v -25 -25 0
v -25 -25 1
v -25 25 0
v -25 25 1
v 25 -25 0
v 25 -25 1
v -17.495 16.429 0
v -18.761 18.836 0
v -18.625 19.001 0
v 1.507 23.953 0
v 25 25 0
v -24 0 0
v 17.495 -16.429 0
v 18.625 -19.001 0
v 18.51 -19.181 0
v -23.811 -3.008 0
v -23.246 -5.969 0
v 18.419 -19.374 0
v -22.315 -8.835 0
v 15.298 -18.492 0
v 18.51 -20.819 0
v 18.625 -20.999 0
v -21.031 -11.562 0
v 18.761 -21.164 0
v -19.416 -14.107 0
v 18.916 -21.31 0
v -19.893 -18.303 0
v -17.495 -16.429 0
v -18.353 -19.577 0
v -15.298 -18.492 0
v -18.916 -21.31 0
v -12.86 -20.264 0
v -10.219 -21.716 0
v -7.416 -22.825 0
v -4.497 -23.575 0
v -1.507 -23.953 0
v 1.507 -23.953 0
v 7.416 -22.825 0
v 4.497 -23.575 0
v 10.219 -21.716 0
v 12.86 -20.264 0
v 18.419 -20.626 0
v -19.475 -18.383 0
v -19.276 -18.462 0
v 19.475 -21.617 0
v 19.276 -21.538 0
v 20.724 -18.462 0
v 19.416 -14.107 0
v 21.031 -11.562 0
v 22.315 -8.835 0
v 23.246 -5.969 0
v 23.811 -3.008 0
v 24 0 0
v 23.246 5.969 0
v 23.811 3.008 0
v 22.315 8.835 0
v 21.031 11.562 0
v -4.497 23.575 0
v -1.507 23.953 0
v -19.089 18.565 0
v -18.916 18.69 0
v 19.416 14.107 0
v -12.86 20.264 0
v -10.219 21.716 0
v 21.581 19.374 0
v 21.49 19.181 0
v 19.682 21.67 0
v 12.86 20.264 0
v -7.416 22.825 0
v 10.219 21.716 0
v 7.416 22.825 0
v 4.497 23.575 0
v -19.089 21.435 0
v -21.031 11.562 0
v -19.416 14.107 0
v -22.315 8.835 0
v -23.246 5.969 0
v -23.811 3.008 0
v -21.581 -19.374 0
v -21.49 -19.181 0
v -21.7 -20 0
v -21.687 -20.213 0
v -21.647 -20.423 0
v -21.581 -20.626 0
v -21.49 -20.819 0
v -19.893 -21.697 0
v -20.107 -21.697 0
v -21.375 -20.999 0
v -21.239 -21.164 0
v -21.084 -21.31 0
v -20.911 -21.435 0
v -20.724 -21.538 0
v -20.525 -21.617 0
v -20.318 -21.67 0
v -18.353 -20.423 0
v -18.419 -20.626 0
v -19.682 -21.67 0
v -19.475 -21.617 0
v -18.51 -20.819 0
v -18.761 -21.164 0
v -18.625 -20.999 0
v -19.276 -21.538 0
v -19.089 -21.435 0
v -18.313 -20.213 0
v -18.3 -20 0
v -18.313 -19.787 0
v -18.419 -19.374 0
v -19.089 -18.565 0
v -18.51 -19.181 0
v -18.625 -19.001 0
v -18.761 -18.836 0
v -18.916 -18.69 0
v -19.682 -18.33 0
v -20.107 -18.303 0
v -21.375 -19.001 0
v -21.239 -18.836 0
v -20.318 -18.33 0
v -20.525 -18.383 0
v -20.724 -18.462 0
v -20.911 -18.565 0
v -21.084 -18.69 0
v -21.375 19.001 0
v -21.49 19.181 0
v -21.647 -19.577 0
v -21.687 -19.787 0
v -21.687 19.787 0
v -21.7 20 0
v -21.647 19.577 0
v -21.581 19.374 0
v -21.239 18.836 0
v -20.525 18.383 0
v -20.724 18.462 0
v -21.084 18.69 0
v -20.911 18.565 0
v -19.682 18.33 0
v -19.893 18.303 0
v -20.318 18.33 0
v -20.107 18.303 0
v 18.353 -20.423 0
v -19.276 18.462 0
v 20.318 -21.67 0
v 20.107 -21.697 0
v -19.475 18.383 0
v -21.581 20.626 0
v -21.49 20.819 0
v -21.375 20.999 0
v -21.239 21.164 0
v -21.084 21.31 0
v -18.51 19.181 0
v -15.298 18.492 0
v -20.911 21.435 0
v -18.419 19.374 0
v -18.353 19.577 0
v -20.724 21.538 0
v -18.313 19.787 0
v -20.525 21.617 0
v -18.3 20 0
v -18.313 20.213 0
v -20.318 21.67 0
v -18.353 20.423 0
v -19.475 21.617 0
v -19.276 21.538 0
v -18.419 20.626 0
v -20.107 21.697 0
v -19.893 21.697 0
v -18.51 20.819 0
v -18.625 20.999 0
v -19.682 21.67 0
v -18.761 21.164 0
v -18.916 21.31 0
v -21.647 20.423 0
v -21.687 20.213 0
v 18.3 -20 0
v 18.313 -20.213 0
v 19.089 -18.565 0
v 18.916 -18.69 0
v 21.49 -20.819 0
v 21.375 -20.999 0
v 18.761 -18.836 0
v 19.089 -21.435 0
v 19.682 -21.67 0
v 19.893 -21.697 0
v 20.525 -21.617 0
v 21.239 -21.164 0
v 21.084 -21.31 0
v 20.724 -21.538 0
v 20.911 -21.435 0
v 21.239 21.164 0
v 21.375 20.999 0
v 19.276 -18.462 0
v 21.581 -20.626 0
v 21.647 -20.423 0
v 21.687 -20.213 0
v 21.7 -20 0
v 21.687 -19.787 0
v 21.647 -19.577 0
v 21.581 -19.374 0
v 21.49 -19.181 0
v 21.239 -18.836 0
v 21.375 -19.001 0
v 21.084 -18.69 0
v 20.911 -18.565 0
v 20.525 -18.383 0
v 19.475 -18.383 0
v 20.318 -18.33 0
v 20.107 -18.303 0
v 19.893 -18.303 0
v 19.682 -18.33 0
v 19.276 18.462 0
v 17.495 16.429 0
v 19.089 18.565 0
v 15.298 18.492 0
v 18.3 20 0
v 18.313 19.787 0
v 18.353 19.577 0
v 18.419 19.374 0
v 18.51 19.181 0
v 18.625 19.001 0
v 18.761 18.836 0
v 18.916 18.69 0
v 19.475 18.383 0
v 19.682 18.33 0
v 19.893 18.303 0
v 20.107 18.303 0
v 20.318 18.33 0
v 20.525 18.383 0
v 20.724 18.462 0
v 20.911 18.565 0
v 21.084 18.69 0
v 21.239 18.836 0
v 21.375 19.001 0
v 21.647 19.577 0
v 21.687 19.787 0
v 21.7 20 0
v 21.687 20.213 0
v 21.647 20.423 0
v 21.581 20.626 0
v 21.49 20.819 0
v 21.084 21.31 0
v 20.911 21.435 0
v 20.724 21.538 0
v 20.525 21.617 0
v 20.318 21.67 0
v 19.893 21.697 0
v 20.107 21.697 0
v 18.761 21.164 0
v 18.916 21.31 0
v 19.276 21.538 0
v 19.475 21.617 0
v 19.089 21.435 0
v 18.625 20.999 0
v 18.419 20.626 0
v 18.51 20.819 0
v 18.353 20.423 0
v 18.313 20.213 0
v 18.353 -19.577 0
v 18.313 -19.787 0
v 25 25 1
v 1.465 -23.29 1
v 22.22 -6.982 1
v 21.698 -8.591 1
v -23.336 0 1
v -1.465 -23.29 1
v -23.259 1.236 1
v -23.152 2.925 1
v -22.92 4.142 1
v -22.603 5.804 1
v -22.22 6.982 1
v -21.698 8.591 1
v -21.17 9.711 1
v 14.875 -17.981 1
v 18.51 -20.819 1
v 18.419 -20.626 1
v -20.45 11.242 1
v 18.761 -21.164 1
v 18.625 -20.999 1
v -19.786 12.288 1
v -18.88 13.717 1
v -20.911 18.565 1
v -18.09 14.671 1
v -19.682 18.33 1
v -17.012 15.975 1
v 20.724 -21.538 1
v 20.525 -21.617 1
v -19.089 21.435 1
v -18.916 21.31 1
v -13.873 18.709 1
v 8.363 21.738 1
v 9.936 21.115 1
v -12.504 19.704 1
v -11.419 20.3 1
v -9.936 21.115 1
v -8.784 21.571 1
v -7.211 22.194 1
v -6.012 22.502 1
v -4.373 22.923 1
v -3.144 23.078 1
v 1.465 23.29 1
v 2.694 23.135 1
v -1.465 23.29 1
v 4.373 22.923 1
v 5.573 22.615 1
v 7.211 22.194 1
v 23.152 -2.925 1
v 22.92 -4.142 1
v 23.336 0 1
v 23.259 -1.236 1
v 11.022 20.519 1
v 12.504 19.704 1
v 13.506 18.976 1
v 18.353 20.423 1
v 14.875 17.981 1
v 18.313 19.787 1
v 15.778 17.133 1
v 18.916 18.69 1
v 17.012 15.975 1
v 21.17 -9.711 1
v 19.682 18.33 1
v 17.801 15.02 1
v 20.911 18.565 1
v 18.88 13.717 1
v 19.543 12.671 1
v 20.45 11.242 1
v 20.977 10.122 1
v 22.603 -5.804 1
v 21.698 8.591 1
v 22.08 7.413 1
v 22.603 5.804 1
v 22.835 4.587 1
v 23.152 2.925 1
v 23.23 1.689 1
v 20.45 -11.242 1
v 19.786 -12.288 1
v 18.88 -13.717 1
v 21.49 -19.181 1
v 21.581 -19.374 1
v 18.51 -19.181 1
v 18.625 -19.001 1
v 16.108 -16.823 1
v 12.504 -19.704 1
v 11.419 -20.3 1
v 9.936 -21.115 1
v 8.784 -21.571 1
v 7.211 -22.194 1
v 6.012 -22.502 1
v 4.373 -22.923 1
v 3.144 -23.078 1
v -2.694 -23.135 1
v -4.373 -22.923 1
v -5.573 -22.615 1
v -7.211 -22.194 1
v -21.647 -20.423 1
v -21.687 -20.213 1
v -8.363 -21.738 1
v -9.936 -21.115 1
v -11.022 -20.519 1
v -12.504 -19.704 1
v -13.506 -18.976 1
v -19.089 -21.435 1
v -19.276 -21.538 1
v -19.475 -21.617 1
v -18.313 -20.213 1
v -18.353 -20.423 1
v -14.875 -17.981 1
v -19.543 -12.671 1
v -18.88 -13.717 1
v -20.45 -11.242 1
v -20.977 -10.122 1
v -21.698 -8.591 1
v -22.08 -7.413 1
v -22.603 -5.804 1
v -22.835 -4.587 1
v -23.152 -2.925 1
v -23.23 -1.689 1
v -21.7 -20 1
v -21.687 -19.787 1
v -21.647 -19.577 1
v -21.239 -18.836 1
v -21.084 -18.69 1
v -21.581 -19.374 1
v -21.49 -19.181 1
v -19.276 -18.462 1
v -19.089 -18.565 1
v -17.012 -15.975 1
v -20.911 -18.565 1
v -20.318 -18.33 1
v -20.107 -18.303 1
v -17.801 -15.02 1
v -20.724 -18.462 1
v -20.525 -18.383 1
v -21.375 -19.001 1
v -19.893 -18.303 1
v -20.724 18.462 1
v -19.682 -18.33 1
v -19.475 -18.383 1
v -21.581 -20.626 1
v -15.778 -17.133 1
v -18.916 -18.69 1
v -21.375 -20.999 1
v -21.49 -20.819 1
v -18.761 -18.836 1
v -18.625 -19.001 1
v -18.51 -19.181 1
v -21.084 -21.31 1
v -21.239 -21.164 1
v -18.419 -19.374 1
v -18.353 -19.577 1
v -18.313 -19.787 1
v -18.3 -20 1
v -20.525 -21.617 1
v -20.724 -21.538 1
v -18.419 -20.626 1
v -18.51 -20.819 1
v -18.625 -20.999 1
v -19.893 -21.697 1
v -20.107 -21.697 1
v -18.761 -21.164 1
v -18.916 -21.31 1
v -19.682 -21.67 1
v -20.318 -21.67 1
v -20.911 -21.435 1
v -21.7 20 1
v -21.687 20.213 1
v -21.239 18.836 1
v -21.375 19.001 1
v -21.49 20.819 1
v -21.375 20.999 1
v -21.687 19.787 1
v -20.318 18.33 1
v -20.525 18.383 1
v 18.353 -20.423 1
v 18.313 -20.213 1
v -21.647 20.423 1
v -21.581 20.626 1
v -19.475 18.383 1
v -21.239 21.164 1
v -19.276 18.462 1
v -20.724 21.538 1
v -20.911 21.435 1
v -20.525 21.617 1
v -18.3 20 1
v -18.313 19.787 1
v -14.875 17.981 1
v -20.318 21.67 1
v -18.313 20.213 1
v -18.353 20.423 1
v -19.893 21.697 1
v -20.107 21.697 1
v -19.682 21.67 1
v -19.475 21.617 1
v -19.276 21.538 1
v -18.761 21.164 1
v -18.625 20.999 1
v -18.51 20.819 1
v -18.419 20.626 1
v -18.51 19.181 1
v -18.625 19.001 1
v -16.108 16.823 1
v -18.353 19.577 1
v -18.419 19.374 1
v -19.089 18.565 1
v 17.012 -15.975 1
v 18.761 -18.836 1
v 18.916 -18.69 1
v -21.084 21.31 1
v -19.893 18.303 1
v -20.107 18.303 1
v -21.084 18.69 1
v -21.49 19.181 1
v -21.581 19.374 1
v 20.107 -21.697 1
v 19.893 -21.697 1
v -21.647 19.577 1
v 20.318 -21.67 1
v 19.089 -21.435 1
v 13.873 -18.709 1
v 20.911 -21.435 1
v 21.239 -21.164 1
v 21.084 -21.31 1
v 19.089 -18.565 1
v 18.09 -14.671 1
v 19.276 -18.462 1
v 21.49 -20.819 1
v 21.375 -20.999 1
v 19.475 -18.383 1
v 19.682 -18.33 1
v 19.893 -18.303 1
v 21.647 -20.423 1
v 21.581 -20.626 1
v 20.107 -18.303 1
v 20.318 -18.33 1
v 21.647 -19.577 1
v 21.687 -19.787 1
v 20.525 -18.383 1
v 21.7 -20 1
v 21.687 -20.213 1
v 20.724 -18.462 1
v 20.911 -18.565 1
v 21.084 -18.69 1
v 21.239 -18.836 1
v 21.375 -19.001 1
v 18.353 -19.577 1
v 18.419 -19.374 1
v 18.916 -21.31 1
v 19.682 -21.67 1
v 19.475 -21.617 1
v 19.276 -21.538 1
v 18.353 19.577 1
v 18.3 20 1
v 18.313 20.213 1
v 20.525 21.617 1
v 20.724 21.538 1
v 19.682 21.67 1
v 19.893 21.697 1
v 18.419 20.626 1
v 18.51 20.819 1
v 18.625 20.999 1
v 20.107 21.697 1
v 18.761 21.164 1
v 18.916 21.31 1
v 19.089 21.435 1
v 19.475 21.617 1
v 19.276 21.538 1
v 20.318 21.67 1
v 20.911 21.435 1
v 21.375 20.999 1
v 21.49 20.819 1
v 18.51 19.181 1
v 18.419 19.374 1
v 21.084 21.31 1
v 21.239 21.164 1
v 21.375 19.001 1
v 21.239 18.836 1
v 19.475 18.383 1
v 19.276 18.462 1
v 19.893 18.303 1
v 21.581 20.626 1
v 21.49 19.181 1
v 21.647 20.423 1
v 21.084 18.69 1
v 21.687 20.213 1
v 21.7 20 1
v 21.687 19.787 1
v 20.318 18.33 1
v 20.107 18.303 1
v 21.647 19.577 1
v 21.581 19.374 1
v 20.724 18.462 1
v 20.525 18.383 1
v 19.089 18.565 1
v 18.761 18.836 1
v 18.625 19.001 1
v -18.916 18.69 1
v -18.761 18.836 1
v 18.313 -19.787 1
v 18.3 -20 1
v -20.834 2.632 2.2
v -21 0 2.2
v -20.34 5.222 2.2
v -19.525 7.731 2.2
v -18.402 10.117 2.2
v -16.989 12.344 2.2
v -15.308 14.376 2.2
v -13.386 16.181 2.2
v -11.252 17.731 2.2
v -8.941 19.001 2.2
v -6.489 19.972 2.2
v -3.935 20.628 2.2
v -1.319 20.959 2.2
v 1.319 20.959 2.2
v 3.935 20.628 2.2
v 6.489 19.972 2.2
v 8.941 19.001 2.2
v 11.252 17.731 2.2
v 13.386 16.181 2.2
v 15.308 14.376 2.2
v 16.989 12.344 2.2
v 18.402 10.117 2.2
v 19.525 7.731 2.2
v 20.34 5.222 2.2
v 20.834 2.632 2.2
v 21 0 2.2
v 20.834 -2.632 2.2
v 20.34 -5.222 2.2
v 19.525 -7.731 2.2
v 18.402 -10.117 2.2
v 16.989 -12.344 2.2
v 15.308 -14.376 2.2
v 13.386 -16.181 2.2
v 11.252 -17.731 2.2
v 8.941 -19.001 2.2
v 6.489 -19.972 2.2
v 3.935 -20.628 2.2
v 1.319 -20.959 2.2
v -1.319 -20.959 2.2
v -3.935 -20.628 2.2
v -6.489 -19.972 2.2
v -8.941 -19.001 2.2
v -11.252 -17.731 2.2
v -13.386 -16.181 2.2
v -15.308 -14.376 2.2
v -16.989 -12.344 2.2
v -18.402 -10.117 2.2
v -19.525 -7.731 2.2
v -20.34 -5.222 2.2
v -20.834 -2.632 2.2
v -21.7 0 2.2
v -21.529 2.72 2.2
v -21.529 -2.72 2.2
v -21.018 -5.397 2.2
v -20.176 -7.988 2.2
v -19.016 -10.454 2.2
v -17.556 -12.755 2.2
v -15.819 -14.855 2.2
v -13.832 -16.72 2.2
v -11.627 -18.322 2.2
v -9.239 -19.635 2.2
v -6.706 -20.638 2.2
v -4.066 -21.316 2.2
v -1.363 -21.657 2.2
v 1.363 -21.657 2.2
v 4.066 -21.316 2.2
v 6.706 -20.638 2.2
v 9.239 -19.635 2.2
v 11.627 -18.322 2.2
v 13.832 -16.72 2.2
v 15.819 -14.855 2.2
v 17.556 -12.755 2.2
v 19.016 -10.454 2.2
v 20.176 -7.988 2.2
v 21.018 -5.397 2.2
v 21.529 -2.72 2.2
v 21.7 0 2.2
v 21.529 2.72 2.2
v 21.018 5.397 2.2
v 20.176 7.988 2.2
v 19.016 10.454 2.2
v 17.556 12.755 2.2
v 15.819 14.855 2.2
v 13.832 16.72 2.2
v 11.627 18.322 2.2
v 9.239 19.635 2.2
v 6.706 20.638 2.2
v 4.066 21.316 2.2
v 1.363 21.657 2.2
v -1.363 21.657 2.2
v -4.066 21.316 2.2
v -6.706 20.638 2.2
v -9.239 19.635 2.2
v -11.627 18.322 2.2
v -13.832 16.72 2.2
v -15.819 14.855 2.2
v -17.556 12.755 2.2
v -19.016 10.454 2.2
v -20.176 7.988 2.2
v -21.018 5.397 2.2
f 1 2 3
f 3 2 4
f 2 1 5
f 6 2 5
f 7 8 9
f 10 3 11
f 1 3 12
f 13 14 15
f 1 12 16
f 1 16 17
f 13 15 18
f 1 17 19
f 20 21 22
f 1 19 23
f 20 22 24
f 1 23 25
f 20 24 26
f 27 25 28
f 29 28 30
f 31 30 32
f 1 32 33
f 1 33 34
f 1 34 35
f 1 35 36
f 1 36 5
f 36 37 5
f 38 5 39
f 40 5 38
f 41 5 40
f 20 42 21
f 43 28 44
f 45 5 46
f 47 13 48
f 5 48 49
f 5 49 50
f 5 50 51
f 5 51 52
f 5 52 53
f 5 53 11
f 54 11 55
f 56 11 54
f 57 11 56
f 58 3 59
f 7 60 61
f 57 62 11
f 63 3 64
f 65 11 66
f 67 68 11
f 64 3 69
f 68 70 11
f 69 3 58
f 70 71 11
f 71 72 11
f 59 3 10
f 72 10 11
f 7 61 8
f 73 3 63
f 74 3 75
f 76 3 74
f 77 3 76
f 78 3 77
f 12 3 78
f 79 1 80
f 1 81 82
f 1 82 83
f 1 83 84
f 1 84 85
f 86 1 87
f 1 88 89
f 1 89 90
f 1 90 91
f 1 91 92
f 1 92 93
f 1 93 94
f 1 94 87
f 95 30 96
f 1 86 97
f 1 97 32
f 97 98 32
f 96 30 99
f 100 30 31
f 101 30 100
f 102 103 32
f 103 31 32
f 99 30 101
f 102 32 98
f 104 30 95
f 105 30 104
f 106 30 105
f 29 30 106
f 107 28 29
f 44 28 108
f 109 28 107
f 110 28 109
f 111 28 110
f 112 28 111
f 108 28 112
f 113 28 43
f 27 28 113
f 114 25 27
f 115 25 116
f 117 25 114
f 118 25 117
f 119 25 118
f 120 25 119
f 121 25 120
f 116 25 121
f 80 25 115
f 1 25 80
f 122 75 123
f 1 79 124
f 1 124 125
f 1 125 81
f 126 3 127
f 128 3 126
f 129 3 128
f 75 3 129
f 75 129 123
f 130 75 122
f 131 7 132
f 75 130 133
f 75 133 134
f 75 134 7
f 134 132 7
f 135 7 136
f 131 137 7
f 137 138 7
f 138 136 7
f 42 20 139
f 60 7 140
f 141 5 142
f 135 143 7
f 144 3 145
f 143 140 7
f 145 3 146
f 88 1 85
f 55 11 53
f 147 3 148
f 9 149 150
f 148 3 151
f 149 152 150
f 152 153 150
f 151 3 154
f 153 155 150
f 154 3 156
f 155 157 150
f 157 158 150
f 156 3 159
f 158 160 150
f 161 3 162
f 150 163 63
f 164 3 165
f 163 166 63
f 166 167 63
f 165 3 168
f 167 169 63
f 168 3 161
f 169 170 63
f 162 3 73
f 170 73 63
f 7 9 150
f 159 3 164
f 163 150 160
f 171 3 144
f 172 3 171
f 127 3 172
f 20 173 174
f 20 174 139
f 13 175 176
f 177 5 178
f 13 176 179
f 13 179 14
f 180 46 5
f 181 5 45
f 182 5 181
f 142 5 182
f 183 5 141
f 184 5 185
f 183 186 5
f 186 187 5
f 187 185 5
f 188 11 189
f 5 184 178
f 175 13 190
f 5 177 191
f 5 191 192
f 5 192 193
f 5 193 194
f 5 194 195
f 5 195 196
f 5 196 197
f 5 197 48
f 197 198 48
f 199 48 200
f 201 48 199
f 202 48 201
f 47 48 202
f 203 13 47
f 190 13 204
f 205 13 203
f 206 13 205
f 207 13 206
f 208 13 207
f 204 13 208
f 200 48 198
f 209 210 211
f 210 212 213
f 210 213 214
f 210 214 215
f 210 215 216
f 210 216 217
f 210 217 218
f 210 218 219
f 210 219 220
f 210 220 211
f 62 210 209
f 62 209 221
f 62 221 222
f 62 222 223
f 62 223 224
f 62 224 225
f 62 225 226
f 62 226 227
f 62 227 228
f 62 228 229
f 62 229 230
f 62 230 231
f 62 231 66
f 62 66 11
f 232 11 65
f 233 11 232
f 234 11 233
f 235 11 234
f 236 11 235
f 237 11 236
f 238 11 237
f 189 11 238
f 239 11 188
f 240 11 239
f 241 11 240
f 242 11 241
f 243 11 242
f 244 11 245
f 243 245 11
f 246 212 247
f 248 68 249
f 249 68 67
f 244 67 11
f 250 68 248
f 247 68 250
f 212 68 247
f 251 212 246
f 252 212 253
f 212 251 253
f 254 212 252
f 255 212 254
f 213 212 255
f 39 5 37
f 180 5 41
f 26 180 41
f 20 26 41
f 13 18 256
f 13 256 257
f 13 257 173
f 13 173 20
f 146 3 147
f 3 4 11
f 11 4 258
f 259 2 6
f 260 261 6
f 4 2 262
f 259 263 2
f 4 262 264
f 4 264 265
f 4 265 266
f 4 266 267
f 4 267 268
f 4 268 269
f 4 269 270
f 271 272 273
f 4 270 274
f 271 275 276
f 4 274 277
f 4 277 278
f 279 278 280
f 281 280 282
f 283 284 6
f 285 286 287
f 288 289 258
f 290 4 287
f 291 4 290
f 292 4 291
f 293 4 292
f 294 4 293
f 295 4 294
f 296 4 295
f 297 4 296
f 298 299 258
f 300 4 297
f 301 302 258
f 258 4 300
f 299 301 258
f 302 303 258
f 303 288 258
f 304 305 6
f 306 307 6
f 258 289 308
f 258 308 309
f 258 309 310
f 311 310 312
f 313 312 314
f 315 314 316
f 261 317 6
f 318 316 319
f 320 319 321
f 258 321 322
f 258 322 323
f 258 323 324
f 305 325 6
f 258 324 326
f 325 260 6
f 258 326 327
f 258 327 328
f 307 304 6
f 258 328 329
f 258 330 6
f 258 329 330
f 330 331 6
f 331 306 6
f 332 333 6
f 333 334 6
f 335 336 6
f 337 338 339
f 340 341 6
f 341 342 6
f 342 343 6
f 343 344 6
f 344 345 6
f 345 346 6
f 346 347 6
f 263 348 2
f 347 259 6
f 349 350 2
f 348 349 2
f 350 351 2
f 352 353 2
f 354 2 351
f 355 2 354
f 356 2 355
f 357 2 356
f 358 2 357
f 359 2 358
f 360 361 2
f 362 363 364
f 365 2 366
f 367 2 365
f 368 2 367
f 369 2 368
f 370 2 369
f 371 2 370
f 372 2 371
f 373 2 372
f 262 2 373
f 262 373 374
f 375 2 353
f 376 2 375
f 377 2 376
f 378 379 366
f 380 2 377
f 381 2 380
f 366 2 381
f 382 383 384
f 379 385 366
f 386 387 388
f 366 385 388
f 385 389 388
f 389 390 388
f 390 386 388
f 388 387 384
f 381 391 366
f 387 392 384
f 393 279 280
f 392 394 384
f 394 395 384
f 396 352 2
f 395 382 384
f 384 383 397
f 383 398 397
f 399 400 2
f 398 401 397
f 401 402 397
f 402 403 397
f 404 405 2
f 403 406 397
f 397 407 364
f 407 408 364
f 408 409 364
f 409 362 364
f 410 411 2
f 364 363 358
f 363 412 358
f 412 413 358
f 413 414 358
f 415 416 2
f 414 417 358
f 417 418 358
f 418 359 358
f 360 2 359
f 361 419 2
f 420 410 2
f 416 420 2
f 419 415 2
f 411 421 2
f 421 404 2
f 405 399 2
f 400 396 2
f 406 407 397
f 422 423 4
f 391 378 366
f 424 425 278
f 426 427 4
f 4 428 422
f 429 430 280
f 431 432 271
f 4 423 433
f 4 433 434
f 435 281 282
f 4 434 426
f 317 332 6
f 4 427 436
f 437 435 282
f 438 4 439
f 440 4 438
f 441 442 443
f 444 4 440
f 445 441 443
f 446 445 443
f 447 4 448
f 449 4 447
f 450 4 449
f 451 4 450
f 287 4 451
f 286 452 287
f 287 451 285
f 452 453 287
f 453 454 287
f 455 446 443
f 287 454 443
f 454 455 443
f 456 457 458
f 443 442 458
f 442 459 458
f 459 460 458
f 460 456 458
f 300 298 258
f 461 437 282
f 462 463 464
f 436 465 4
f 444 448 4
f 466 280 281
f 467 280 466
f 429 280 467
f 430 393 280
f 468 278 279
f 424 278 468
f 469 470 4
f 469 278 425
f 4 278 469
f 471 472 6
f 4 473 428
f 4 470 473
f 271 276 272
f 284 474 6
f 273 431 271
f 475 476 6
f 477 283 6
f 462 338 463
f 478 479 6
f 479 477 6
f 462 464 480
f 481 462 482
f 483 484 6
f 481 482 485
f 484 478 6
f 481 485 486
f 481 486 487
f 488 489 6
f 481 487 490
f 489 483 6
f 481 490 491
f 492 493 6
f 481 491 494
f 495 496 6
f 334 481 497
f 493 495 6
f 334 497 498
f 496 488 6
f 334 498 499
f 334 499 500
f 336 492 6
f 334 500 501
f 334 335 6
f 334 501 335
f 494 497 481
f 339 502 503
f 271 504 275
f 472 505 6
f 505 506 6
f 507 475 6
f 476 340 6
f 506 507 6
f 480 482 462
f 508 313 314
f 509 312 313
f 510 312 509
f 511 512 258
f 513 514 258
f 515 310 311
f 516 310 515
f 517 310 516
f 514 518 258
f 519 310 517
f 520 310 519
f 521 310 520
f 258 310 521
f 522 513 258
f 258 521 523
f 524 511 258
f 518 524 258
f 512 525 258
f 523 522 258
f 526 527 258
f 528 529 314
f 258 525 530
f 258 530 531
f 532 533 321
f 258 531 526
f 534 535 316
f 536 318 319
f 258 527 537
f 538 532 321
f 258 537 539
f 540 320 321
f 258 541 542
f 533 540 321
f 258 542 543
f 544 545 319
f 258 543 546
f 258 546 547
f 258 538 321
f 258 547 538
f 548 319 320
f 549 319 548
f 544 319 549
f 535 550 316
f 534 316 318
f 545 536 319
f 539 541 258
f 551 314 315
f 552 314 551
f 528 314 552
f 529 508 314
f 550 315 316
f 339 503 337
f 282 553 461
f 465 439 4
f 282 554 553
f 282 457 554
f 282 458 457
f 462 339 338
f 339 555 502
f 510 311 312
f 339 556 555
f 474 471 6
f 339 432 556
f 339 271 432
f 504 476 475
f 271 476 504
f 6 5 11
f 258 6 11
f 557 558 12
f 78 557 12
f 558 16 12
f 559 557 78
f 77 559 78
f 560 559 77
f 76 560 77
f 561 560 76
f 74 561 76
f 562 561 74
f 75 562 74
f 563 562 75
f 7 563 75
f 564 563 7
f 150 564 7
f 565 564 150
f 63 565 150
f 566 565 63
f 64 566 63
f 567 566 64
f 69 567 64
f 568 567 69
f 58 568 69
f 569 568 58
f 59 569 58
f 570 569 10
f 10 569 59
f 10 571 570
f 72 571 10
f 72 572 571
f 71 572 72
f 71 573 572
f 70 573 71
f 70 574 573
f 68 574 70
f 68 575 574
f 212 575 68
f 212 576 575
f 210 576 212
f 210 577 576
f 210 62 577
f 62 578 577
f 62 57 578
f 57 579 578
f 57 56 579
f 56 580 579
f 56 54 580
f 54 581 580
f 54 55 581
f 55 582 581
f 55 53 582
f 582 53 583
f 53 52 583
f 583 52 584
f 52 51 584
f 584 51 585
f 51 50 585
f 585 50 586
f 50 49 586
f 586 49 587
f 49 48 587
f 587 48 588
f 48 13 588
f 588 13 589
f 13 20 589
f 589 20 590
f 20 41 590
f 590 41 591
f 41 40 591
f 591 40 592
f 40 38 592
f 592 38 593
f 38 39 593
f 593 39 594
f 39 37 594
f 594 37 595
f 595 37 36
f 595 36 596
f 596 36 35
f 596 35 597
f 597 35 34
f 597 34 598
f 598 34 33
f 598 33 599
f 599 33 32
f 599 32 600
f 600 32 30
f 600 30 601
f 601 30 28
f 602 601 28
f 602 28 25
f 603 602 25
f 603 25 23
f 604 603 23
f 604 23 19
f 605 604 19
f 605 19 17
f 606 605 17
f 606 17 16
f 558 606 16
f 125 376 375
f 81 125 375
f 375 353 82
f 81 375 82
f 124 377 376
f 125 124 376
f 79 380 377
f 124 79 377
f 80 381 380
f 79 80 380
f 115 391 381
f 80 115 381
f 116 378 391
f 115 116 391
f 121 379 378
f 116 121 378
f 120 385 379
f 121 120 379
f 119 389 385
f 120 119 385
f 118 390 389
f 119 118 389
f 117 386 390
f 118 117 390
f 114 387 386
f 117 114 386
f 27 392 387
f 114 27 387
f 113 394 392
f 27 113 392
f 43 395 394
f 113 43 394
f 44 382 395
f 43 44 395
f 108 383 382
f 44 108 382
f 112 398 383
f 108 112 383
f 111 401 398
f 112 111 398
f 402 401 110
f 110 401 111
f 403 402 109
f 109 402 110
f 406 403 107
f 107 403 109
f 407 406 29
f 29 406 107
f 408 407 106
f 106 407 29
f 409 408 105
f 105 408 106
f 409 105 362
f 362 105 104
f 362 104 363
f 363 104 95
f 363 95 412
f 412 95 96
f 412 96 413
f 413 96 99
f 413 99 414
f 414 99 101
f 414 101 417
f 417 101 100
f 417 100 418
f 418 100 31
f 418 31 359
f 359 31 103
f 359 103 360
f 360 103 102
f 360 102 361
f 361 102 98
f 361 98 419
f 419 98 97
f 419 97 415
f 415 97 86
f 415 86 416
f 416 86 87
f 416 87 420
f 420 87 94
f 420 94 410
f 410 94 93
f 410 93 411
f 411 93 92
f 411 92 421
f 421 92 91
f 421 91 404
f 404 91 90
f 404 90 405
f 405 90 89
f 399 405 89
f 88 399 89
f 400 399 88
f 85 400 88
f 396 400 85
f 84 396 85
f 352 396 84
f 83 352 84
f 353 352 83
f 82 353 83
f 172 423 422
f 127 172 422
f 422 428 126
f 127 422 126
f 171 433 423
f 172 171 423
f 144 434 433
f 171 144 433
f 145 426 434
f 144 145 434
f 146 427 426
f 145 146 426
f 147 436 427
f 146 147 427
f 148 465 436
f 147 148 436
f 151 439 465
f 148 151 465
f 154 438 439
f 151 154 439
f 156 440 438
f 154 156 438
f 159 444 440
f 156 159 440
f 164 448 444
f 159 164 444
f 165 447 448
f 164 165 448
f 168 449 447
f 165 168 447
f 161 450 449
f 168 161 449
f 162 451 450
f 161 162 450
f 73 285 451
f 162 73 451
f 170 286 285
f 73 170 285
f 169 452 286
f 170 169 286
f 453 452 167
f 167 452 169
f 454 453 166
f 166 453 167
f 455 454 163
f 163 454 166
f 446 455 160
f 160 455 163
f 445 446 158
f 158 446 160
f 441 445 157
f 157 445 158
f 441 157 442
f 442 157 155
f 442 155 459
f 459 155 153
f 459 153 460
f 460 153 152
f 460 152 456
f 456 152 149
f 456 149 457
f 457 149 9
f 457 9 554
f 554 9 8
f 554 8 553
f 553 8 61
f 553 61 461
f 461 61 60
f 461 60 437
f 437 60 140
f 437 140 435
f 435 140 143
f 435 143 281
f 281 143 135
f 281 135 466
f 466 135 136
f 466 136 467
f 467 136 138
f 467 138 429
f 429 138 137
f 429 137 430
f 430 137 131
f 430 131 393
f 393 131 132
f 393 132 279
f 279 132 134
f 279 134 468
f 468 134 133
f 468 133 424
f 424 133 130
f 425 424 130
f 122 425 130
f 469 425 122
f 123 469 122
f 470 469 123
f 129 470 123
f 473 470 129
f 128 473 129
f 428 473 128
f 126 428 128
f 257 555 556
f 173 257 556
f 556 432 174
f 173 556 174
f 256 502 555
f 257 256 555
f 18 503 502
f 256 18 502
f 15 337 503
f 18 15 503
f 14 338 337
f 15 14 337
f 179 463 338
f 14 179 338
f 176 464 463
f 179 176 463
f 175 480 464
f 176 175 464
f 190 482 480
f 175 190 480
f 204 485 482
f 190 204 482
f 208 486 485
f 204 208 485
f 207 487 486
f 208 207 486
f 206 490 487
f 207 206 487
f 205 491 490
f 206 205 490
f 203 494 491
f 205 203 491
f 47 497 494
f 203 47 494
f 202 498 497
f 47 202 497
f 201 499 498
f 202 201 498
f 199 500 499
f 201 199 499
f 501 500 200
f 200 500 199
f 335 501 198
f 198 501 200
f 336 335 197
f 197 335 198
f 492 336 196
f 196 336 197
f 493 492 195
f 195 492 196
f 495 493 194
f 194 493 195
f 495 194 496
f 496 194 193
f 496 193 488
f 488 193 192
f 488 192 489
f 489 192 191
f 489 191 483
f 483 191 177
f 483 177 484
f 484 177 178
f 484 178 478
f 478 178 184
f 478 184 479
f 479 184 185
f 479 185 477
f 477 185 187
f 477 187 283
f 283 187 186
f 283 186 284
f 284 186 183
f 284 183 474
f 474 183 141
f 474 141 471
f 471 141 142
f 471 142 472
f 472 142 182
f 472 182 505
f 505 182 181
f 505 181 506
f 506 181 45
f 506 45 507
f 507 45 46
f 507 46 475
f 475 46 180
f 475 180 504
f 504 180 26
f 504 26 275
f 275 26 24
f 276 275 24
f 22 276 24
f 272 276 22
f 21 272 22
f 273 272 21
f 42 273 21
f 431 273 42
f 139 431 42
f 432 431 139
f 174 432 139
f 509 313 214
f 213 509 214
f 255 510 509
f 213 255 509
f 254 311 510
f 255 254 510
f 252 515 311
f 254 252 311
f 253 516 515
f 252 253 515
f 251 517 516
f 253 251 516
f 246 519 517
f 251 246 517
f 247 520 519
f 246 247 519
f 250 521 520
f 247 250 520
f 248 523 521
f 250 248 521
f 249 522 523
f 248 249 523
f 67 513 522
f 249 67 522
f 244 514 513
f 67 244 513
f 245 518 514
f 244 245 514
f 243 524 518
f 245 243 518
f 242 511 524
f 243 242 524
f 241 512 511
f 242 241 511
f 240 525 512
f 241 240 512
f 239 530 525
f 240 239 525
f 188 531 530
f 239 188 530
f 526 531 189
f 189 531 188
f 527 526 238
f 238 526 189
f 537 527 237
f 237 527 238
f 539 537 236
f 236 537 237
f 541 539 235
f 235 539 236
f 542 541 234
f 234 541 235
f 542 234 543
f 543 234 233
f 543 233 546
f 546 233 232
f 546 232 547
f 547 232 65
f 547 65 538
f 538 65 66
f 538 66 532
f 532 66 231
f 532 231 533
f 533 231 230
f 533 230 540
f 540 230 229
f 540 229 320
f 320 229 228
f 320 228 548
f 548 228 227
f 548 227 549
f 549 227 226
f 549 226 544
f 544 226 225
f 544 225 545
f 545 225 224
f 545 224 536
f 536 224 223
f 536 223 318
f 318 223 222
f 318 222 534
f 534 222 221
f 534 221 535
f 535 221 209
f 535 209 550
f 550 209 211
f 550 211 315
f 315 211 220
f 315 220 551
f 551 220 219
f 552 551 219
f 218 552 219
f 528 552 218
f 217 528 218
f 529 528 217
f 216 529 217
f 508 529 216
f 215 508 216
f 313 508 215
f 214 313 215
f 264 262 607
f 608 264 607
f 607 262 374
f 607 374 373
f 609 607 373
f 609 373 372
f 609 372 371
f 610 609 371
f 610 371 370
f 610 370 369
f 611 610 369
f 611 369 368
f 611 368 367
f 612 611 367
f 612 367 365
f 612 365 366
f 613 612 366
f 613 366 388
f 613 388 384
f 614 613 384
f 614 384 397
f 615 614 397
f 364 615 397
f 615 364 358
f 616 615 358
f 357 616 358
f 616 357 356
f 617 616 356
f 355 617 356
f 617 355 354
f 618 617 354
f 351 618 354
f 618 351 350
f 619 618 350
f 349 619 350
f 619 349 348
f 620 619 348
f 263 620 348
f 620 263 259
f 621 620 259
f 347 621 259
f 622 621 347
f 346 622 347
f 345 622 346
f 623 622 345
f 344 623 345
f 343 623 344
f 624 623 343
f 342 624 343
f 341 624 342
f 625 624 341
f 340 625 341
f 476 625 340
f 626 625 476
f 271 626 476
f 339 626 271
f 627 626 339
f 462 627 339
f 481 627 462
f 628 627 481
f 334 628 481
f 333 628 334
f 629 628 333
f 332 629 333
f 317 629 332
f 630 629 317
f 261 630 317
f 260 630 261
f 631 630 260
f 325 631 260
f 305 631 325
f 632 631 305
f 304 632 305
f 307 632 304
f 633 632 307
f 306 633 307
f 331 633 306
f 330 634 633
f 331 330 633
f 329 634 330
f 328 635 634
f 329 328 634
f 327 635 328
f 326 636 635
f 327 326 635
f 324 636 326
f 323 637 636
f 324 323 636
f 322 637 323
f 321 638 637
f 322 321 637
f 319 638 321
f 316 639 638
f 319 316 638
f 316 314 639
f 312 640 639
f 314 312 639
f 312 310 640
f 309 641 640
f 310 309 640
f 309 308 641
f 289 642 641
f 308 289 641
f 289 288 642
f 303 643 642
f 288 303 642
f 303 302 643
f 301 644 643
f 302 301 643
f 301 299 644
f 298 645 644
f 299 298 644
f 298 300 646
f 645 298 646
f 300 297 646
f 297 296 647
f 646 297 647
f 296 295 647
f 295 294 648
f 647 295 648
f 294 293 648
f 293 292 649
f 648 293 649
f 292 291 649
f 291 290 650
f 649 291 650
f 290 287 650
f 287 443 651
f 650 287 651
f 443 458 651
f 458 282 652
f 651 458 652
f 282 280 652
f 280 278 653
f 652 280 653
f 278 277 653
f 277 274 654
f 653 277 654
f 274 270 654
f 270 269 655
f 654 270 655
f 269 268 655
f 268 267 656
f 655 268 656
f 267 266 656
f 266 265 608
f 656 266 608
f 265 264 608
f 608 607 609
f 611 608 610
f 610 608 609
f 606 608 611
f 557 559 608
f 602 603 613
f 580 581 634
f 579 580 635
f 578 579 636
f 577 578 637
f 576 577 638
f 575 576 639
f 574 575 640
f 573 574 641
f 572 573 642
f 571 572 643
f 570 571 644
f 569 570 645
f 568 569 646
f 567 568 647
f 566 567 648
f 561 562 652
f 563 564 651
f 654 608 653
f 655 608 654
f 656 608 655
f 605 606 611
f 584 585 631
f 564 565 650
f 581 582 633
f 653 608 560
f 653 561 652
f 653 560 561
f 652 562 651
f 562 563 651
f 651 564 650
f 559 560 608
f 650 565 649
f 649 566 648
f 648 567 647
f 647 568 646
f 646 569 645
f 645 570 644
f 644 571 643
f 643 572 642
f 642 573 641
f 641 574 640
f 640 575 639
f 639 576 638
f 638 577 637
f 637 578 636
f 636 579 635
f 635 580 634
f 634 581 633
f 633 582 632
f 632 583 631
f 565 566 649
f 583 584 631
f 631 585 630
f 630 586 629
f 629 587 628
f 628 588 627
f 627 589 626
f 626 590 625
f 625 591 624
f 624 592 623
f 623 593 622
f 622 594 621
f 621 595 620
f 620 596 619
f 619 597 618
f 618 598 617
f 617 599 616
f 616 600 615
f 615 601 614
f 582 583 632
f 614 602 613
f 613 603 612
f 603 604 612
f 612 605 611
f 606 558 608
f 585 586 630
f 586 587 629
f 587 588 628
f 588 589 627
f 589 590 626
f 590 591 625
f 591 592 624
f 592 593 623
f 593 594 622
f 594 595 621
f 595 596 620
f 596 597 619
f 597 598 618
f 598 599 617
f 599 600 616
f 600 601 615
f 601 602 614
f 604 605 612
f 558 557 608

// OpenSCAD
rb = 48/2;
rt = rb-3;
h = 2.2;
d = 0.7;
dp = 1.0;
s = 50;
sl = 40;
rl = 1.7;

$fn = 50;

difference(){
	union(){
		cylinder(h,rb+d,rt+d);
		translate([-s/2,-s/2,0]) cube([s,s,dp]);
	}
	cylinder(h,rb,rt);

	translate([-sl/2,-sl/2,0]) cylinder(r=rl,h=dp);
	translate([-sl/2,sl/2,0]) cylinder(r=rl,h=dp);
	translate([sl/2,-sl/2,0]) cylinder(r=rl,h=dp);
	translate([sl/2,sl/2,0]) cylinder(r=rl,h=dp);

}
